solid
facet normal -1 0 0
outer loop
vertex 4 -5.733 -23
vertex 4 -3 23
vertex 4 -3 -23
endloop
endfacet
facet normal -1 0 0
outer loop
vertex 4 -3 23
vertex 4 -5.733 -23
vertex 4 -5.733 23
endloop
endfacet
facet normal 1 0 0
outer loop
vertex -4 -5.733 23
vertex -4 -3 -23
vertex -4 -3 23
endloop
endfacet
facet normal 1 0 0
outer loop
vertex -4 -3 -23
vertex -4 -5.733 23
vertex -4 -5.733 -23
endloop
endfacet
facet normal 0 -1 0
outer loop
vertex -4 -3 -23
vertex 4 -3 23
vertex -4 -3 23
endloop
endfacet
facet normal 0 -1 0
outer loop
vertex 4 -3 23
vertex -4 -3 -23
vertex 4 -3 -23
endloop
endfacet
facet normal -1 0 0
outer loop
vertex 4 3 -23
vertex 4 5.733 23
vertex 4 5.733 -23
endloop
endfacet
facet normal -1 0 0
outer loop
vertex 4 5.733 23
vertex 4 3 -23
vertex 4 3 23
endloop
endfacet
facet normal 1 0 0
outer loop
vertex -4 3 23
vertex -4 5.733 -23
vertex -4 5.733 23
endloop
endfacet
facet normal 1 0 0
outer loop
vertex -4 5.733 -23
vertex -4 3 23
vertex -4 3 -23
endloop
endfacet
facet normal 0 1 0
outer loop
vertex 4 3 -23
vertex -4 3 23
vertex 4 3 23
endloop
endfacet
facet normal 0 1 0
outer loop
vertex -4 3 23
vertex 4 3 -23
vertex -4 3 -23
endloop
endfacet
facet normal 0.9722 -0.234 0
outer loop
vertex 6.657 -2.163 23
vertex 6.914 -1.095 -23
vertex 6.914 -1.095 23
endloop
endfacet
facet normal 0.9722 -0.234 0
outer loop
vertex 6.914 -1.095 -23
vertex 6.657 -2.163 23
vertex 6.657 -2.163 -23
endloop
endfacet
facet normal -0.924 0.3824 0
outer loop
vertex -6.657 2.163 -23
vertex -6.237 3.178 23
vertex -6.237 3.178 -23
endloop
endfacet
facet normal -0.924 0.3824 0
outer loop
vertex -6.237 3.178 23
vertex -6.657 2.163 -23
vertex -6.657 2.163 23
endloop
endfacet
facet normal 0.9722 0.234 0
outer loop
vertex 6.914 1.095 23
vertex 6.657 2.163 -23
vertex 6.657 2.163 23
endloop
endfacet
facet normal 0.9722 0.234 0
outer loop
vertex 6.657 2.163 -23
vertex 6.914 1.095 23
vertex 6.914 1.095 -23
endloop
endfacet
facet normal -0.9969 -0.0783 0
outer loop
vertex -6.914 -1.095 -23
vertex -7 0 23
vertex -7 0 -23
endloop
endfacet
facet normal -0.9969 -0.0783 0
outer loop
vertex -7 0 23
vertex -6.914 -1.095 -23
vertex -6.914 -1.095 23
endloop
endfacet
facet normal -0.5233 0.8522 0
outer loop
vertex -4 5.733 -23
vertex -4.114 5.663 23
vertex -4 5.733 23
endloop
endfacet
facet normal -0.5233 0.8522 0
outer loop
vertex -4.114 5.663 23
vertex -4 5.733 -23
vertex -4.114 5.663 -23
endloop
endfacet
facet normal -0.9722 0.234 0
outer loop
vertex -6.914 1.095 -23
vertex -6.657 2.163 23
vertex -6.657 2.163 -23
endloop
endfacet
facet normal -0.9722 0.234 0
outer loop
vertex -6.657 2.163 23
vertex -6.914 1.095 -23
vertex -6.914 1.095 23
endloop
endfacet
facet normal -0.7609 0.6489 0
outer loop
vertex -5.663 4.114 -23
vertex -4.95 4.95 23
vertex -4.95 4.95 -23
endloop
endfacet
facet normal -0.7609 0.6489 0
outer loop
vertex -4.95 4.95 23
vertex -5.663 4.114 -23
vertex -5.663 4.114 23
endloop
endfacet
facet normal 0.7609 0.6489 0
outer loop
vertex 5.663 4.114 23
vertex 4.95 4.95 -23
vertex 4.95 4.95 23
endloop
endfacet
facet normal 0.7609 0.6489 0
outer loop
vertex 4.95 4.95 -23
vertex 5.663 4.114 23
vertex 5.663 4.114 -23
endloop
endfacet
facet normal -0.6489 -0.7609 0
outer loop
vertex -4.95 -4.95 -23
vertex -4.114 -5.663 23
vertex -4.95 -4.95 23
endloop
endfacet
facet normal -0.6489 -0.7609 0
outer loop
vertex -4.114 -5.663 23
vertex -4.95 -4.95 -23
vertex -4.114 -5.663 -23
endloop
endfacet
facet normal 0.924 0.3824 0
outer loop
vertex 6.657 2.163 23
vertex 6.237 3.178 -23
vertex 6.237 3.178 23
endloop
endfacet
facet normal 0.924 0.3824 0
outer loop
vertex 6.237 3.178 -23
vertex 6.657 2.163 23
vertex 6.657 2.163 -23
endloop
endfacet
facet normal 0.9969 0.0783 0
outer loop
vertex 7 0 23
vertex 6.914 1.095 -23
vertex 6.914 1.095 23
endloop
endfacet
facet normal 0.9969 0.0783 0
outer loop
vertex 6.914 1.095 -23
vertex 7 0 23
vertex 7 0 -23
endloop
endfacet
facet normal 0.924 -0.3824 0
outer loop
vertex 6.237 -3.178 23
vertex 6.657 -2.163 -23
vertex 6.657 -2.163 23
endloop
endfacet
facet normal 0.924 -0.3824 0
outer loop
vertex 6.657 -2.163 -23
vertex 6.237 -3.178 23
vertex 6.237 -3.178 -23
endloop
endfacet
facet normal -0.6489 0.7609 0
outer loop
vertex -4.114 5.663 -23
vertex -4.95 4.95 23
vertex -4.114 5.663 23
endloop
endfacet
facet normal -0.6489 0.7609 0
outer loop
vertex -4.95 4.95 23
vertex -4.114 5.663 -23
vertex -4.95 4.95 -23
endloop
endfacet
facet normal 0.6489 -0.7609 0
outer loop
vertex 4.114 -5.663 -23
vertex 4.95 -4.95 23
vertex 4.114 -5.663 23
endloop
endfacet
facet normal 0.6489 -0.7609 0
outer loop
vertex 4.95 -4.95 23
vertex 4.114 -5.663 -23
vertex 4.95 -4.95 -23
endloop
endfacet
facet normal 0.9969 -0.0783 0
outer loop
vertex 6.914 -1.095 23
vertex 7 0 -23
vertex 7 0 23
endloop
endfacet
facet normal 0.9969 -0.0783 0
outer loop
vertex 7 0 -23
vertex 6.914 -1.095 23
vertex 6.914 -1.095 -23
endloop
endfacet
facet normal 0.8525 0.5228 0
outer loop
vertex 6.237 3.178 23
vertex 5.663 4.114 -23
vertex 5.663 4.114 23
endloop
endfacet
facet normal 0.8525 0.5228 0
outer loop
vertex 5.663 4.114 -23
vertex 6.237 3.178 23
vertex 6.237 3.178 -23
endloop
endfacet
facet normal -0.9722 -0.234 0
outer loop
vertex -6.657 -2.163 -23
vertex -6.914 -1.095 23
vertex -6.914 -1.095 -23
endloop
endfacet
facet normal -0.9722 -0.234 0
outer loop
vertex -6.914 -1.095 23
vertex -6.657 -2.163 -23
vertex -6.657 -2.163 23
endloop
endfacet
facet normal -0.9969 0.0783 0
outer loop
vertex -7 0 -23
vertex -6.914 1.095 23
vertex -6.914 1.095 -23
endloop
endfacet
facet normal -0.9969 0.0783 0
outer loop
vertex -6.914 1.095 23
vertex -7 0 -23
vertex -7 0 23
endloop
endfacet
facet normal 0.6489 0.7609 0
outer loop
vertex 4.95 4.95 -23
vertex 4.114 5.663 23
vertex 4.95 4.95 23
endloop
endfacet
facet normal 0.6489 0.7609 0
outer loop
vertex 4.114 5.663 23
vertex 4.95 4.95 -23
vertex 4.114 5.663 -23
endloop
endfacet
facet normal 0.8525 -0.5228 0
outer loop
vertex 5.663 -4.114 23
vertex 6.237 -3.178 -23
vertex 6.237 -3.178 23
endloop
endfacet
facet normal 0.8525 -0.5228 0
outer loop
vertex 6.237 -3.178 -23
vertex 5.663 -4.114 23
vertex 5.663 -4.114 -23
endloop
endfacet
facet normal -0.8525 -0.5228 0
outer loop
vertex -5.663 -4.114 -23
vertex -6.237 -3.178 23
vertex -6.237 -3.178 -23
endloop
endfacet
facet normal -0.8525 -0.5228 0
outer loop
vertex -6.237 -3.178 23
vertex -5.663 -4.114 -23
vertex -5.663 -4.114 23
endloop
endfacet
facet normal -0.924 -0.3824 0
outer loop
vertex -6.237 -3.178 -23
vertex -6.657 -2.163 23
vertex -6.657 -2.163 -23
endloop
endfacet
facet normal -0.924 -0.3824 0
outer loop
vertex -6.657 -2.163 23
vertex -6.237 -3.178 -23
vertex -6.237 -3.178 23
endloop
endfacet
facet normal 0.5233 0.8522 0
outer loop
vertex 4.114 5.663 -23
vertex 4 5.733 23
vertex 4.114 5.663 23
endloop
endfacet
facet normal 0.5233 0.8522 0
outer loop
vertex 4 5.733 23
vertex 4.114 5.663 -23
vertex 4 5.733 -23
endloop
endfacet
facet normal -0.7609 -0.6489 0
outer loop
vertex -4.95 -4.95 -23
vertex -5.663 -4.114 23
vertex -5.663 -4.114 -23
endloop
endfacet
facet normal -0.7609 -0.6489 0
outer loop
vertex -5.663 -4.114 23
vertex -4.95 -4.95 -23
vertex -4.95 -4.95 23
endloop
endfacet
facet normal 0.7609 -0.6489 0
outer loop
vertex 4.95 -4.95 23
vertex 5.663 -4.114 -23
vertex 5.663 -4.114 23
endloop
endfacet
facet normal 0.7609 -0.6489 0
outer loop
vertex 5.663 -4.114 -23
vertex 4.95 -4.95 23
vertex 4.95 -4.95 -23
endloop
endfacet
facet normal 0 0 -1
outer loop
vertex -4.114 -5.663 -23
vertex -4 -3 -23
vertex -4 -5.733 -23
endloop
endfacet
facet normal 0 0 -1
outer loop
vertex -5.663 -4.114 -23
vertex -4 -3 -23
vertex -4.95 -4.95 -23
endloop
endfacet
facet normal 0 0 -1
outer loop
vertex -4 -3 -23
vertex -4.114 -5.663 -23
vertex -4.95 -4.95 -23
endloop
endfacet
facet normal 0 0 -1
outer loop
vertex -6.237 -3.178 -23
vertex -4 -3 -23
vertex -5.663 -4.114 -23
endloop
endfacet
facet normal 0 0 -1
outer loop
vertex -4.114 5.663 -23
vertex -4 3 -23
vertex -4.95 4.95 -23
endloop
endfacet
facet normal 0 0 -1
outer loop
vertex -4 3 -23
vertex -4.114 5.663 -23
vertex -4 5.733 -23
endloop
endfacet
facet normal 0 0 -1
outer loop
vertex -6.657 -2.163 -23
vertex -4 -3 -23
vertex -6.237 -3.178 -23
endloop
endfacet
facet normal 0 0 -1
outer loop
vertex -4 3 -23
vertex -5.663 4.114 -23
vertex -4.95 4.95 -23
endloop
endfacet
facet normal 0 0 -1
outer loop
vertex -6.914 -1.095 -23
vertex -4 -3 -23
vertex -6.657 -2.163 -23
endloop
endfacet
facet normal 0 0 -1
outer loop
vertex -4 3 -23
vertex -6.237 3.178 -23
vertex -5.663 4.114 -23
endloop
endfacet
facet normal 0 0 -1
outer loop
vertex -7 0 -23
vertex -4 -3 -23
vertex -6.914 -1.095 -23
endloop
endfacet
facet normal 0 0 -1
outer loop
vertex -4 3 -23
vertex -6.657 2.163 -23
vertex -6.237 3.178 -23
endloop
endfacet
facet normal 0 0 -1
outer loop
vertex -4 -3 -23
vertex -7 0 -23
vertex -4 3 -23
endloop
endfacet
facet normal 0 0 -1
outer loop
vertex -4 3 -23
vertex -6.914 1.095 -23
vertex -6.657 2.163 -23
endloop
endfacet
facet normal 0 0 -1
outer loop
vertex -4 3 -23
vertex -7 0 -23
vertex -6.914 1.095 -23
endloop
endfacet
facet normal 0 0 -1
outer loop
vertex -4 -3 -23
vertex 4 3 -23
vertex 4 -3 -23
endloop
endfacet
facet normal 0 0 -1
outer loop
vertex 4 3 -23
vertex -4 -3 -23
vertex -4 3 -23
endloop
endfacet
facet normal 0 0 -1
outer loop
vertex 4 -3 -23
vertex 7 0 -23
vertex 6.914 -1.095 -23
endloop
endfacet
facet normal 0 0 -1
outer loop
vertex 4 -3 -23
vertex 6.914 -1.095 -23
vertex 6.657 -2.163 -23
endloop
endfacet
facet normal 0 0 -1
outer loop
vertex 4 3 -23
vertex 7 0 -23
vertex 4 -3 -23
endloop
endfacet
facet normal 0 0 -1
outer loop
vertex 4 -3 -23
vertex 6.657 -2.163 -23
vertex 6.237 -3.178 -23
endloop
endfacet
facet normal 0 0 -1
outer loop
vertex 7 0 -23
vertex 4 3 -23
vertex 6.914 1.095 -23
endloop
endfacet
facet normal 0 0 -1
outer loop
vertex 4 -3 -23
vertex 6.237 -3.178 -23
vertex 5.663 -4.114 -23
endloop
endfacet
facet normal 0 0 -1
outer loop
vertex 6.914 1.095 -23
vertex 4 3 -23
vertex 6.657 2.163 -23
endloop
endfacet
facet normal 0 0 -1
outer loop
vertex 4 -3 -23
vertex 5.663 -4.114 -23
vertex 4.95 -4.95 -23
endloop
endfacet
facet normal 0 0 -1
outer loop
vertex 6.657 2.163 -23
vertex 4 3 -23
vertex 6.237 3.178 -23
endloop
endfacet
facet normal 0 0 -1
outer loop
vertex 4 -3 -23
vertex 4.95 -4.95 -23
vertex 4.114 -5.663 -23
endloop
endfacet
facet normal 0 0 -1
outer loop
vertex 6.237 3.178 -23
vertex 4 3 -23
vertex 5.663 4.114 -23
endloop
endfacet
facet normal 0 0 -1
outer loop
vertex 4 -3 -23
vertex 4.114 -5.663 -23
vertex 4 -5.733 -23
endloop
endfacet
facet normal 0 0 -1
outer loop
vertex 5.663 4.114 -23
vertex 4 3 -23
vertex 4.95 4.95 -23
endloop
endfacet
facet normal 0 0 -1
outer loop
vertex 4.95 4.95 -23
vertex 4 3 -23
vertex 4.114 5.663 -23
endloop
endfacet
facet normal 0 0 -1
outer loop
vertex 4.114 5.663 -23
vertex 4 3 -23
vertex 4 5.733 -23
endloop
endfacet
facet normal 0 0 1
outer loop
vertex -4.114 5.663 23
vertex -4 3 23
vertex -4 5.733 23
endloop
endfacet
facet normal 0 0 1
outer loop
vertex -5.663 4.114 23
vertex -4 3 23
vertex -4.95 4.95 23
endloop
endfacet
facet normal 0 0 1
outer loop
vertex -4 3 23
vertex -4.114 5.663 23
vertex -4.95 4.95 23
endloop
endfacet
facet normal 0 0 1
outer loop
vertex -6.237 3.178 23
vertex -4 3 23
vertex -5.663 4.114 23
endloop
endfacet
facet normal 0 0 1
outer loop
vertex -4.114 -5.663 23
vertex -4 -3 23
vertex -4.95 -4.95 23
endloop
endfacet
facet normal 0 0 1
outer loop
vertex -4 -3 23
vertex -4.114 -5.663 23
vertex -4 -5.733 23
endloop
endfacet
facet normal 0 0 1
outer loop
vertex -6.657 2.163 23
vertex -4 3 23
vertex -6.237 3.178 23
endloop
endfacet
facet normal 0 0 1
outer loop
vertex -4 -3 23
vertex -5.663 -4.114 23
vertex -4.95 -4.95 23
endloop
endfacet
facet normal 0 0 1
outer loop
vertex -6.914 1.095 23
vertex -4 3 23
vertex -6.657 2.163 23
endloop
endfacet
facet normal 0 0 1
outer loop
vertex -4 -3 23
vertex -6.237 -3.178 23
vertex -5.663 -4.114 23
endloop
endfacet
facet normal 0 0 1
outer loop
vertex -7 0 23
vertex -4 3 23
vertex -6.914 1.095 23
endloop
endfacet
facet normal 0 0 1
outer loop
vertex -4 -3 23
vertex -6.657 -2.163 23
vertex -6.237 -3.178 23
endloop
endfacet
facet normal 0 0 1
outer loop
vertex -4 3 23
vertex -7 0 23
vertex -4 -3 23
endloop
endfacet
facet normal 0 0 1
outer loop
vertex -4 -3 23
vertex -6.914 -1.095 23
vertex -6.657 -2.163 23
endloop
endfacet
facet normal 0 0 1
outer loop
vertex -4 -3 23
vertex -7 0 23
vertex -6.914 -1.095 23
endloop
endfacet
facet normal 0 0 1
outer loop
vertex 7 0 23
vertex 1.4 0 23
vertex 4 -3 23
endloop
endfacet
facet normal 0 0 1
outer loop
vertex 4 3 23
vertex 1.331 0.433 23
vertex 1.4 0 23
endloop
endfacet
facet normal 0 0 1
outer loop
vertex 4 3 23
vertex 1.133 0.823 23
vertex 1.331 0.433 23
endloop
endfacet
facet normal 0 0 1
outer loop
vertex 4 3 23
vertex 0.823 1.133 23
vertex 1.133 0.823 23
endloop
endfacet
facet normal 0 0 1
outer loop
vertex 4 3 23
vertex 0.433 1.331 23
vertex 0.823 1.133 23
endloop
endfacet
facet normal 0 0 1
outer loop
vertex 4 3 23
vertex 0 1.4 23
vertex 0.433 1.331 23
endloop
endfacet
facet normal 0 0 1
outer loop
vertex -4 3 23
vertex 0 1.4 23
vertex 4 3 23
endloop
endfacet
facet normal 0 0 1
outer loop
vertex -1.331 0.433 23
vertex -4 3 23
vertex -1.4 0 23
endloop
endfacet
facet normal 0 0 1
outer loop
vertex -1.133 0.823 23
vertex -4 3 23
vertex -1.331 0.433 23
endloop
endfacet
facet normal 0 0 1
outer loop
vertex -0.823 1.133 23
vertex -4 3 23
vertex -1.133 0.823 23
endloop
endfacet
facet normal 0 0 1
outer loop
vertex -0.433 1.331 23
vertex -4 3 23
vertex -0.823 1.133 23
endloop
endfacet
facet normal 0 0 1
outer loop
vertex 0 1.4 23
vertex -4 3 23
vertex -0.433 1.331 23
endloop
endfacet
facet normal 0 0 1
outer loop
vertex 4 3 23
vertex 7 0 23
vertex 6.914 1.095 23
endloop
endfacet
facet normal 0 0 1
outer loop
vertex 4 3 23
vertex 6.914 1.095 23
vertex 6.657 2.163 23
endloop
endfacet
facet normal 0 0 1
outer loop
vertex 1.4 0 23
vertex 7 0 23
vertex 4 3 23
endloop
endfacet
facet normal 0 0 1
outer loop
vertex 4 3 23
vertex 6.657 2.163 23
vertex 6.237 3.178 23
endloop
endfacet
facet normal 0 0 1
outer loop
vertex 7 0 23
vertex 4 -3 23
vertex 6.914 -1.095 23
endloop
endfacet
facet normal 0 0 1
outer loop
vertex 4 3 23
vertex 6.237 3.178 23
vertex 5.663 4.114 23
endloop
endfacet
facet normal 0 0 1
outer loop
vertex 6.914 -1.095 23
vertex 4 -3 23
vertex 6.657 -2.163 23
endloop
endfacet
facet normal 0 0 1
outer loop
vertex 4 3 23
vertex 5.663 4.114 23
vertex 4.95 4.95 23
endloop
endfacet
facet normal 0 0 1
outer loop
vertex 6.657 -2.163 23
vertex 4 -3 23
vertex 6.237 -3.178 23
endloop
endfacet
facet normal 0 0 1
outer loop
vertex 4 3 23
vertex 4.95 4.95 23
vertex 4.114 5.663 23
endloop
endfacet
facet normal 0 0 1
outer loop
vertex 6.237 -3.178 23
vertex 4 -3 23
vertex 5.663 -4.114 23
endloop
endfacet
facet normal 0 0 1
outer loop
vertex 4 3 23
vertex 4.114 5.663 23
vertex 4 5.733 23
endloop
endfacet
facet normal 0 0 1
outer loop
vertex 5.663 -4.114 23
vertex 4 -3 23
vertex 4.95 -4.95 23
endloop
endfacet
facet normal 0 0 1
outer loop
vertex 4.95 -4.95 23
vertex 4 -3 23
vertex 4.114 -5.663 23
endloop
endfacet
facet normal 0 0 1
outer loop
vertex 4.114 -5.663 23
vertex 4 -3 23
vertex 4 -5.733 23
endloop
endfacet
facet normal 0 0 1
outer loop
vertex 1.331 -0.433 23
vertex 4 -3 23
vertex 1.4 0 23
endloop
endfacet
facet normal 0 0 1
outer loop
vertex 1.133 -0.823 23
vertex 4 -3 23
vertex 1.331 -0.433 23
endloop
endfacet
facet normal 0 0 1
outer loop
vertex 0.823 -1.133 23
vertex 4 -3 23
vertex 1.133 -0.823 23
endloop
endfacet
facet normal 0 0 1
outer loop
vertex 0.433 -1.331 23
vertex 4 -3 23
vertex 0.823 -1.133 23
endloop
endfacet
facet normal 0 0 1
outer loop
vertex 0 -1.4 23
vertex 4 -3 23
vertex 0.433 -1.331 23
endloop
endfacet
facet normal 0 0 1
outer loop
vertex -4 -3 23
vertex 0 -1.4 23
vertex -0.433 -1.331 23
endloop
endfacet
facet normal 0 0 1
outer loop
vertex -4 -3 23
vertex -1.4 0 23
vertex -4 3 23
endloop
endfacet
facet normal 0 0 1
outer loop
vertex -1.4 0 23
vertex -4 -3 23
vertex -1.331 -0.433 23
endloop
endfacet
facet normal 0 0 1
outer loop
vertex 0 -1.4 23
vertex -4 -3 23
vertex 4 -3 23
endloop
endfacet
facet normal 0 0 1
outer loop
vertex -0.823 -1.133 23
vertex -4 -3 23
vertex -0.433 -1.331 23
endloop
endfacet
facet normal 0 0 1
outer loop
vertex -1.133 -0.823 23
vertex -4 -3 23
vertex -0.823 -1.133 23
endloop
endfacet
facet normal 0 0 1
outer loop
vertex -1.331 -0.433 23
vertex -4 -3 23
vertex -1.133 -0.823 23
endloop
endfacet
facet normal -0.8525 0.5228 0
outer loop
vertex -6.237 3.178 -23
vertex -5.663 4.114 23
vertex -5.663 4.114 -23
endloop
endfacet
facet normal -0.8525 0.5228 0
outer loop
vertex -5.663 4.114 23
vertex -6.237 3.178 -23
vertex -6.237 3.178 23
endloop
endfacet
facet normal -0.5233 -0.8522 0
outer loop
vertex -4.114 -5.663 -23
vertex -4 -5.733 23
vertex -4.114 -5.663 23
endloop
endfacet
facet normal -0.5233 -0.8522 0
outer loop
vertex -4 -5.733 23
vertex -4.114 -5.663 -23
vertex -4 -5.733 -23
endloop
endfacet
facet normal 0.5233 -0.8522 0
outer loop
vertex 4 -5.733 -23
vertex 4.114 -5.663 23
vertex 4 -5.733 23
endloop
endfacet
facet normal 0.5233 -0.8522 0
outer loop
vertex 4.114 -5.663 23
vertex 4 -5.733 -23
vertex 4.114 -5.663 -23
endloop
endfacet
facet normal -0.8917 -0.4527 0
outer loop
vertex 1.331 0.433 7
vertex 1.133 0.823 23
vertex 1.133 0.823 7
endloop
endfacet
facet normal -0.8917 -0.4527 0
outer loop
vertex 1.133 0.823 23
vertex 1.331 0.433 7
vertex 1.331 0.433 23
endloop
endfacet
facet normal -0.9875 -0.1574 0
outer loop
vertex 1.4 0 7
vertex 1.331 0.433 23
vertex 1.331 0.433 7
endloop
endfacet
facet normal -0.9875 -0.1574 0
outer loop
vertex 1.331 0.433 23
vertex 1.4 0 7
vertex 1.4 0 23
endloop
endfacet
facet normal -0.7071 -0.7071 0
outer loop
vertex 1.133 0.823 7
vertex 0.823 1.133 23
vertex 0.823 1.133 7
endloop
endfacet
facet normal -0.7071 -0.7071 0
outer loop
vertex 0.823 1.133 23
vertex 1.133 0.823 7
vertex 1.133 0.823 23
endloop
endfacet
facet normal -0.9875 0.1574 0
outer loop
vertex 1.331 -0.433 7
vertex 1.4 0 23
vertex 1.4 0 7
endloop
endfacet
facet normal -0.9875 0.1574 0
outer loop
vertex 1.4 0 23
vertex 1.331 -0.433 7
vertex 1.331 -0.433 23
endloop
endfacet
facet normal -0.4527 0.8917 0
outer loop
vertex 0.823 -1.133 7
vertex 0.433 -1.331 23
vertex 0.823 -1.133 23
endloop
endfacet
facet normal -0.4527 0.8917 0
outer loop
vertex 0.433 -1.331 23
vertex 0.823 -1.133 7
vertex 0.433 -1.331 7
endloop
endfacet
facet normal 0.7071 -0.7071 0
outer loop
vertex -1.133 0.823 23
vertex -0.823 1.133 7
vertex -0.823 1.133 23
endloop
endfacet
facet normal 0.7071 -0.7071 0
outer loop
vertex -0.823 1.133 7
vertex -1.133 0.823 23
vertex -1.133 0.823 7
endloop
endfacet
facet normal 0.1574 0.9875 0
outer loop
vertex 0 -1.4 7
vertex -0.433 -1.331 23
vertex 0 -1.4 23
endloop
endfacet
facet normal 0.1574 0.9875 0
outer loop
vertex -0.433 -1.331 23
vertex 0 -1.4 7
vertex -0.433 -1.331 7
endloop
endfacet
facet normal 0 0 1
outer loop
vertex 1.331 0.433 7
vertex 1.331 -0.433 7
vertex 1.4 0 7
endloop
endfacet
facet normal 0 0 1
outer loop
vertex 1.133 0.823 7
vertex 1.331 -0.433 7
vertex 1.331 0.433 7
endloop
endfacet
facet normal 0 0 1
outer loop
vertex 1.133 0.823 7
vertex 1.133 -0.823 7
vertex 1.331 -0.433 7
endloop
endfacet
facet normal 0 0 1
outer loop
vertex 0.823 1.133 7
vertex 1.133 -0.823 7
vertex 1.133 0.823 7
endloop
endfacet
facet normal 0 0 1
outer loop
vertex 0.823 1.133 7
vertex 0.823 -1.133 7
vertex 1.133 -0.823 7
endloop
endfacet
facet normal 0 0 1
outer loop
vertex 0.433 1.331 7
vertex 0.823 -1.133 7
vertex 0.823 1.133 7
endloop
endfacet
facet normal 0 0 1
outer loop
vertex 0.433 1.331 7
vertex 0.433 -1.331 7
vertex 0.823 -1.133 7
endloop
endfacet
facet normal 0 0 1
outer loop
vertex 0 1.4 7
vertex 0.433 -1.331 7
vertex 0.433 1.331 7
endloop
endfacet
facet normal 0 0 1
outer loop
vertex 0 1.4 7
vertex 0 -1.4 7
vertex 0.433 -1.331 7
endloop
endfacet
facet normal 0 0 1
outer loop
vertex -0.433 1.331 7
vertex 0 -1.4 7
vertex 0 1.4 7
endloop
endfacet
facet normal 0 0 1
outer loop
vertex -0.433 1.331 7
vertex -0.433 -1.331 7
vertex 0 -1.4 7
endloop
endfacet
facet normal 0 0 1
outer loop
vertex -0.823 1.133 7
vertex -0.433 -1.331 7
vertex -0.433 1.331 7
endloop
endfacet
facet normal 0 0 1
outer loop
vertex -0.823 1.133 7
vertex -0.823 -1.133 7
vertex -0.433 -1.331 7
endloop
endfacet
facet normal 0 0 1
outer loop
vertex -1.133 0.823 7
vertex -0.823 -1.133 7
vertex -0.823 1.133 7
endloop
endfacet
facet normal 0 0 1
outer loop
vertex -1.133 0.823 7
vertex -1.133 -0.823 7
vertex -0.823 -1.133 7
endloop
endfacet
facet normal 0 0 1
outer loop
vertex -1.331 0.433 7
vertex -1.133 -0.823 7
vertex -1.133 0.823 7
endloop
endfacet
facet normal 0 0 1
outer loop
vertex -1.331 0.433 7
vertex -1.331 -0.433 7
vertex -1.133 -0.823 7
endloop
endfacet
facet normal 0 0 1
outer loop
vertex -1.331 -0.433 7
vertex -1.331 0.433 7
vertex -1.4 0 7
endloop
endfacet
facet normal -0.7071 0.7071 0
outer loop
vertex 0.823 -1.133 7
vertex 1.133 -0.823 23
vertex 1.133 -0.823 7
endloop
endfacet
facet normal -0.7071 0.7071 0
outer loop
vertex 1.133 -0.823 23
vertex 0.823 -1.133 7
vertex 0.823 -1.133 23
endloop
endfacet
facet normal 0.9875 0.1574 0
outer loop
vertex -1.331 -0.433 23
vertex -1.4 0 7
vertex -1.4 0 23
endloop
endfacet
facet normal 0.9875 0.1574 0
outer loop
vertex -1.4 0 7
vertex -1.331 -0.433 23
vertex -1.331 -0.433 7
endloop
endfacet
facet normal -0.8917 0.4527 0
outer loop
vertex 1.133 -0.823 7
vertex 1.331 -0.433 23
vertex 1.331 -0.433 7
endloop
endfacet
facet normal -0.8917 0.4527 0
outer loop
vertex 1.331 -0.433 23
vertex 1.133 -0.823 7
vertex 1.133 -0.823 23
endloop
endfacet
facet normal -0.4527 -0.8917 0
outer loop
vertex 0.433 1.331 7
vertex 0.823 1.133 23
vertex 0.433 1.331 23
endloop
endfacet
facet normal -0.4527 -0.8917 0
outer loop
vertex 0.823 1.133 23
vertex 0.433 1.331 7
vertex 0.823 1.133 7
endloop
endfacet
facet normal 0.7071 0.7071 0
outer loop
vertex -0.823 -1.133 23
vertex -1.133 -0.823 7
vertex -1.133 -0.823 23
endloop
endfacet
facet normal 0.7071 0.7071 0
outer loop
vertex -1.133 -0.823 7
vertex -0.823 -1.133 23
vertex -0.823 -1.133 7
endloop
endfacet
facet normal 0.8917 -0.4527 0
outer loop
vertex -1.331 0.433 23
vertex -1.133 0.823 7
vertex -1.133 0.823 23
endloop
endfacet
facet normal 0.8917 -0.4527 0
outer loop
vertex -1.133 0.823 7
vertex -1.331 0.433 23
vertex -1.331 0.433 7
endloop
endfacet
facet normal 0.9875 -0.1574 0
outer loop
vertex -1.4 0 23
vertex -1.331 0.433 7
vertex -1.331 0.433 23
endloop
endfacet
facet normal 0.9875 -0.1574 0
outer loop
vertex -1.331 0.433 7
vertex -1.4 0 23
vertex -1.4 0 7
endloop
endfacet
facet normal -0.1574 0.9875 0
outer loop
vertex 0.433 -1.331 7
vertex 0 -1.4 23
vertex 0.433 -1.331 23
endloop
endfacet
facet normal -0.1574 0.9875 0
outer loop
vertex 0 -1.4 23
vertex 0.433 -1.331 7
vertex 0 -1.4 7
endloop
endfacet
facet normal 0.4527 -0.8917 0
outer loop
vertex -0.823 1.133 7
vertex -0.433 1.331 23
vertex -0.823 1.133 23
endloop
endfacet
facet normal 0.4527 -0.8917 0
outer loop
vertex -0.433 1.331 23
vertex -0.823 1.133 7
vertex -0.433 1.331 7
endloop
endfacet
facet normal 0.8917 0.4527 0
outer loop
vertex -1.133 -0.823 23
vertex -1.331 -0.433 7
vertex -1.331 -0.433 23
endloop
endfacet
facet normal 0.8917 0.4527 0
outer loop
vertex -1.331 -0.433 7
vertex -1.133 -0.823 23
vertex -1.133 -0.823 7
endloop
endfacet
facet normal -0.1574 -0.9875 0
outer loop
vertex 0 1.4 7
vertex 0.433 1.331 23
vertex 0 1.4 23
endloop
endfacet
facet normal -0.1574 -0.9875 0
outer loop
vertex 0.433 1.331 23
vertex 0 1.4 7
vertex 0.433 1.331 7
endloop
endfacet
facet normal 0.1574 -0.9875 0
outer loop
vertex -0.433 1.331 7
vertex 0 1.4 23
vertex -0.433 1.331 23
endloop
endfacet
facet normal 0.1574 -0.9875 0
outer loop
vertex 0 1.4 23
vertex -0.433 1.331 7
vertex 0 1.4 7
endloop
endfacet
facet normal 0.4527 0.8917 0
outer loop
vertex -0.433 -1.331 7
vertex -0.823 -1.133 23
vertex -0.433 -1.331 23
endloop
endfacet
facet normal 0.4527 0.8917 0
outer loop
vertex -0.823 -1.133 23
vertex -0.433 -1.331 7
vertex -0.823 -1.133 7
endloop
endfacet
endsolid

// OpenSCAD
len = 46;
d   = 14;

screw_len = 16;
screw_d   = 2.8;

difference() {
  cylinder(len, d=d, $fn=40, center=true);

  // screw hole
  color("red")
  translate([0, 0, len - screw_len])
  cylinder(len, d=screw_d, $fn=20, center=true);

  // wire cutout
  color("red")
  for (i = [-1, +1]) {
    translate([0, i*d/2, 0])
    cube([8, 8, 2*len], center=true);
  }
}
